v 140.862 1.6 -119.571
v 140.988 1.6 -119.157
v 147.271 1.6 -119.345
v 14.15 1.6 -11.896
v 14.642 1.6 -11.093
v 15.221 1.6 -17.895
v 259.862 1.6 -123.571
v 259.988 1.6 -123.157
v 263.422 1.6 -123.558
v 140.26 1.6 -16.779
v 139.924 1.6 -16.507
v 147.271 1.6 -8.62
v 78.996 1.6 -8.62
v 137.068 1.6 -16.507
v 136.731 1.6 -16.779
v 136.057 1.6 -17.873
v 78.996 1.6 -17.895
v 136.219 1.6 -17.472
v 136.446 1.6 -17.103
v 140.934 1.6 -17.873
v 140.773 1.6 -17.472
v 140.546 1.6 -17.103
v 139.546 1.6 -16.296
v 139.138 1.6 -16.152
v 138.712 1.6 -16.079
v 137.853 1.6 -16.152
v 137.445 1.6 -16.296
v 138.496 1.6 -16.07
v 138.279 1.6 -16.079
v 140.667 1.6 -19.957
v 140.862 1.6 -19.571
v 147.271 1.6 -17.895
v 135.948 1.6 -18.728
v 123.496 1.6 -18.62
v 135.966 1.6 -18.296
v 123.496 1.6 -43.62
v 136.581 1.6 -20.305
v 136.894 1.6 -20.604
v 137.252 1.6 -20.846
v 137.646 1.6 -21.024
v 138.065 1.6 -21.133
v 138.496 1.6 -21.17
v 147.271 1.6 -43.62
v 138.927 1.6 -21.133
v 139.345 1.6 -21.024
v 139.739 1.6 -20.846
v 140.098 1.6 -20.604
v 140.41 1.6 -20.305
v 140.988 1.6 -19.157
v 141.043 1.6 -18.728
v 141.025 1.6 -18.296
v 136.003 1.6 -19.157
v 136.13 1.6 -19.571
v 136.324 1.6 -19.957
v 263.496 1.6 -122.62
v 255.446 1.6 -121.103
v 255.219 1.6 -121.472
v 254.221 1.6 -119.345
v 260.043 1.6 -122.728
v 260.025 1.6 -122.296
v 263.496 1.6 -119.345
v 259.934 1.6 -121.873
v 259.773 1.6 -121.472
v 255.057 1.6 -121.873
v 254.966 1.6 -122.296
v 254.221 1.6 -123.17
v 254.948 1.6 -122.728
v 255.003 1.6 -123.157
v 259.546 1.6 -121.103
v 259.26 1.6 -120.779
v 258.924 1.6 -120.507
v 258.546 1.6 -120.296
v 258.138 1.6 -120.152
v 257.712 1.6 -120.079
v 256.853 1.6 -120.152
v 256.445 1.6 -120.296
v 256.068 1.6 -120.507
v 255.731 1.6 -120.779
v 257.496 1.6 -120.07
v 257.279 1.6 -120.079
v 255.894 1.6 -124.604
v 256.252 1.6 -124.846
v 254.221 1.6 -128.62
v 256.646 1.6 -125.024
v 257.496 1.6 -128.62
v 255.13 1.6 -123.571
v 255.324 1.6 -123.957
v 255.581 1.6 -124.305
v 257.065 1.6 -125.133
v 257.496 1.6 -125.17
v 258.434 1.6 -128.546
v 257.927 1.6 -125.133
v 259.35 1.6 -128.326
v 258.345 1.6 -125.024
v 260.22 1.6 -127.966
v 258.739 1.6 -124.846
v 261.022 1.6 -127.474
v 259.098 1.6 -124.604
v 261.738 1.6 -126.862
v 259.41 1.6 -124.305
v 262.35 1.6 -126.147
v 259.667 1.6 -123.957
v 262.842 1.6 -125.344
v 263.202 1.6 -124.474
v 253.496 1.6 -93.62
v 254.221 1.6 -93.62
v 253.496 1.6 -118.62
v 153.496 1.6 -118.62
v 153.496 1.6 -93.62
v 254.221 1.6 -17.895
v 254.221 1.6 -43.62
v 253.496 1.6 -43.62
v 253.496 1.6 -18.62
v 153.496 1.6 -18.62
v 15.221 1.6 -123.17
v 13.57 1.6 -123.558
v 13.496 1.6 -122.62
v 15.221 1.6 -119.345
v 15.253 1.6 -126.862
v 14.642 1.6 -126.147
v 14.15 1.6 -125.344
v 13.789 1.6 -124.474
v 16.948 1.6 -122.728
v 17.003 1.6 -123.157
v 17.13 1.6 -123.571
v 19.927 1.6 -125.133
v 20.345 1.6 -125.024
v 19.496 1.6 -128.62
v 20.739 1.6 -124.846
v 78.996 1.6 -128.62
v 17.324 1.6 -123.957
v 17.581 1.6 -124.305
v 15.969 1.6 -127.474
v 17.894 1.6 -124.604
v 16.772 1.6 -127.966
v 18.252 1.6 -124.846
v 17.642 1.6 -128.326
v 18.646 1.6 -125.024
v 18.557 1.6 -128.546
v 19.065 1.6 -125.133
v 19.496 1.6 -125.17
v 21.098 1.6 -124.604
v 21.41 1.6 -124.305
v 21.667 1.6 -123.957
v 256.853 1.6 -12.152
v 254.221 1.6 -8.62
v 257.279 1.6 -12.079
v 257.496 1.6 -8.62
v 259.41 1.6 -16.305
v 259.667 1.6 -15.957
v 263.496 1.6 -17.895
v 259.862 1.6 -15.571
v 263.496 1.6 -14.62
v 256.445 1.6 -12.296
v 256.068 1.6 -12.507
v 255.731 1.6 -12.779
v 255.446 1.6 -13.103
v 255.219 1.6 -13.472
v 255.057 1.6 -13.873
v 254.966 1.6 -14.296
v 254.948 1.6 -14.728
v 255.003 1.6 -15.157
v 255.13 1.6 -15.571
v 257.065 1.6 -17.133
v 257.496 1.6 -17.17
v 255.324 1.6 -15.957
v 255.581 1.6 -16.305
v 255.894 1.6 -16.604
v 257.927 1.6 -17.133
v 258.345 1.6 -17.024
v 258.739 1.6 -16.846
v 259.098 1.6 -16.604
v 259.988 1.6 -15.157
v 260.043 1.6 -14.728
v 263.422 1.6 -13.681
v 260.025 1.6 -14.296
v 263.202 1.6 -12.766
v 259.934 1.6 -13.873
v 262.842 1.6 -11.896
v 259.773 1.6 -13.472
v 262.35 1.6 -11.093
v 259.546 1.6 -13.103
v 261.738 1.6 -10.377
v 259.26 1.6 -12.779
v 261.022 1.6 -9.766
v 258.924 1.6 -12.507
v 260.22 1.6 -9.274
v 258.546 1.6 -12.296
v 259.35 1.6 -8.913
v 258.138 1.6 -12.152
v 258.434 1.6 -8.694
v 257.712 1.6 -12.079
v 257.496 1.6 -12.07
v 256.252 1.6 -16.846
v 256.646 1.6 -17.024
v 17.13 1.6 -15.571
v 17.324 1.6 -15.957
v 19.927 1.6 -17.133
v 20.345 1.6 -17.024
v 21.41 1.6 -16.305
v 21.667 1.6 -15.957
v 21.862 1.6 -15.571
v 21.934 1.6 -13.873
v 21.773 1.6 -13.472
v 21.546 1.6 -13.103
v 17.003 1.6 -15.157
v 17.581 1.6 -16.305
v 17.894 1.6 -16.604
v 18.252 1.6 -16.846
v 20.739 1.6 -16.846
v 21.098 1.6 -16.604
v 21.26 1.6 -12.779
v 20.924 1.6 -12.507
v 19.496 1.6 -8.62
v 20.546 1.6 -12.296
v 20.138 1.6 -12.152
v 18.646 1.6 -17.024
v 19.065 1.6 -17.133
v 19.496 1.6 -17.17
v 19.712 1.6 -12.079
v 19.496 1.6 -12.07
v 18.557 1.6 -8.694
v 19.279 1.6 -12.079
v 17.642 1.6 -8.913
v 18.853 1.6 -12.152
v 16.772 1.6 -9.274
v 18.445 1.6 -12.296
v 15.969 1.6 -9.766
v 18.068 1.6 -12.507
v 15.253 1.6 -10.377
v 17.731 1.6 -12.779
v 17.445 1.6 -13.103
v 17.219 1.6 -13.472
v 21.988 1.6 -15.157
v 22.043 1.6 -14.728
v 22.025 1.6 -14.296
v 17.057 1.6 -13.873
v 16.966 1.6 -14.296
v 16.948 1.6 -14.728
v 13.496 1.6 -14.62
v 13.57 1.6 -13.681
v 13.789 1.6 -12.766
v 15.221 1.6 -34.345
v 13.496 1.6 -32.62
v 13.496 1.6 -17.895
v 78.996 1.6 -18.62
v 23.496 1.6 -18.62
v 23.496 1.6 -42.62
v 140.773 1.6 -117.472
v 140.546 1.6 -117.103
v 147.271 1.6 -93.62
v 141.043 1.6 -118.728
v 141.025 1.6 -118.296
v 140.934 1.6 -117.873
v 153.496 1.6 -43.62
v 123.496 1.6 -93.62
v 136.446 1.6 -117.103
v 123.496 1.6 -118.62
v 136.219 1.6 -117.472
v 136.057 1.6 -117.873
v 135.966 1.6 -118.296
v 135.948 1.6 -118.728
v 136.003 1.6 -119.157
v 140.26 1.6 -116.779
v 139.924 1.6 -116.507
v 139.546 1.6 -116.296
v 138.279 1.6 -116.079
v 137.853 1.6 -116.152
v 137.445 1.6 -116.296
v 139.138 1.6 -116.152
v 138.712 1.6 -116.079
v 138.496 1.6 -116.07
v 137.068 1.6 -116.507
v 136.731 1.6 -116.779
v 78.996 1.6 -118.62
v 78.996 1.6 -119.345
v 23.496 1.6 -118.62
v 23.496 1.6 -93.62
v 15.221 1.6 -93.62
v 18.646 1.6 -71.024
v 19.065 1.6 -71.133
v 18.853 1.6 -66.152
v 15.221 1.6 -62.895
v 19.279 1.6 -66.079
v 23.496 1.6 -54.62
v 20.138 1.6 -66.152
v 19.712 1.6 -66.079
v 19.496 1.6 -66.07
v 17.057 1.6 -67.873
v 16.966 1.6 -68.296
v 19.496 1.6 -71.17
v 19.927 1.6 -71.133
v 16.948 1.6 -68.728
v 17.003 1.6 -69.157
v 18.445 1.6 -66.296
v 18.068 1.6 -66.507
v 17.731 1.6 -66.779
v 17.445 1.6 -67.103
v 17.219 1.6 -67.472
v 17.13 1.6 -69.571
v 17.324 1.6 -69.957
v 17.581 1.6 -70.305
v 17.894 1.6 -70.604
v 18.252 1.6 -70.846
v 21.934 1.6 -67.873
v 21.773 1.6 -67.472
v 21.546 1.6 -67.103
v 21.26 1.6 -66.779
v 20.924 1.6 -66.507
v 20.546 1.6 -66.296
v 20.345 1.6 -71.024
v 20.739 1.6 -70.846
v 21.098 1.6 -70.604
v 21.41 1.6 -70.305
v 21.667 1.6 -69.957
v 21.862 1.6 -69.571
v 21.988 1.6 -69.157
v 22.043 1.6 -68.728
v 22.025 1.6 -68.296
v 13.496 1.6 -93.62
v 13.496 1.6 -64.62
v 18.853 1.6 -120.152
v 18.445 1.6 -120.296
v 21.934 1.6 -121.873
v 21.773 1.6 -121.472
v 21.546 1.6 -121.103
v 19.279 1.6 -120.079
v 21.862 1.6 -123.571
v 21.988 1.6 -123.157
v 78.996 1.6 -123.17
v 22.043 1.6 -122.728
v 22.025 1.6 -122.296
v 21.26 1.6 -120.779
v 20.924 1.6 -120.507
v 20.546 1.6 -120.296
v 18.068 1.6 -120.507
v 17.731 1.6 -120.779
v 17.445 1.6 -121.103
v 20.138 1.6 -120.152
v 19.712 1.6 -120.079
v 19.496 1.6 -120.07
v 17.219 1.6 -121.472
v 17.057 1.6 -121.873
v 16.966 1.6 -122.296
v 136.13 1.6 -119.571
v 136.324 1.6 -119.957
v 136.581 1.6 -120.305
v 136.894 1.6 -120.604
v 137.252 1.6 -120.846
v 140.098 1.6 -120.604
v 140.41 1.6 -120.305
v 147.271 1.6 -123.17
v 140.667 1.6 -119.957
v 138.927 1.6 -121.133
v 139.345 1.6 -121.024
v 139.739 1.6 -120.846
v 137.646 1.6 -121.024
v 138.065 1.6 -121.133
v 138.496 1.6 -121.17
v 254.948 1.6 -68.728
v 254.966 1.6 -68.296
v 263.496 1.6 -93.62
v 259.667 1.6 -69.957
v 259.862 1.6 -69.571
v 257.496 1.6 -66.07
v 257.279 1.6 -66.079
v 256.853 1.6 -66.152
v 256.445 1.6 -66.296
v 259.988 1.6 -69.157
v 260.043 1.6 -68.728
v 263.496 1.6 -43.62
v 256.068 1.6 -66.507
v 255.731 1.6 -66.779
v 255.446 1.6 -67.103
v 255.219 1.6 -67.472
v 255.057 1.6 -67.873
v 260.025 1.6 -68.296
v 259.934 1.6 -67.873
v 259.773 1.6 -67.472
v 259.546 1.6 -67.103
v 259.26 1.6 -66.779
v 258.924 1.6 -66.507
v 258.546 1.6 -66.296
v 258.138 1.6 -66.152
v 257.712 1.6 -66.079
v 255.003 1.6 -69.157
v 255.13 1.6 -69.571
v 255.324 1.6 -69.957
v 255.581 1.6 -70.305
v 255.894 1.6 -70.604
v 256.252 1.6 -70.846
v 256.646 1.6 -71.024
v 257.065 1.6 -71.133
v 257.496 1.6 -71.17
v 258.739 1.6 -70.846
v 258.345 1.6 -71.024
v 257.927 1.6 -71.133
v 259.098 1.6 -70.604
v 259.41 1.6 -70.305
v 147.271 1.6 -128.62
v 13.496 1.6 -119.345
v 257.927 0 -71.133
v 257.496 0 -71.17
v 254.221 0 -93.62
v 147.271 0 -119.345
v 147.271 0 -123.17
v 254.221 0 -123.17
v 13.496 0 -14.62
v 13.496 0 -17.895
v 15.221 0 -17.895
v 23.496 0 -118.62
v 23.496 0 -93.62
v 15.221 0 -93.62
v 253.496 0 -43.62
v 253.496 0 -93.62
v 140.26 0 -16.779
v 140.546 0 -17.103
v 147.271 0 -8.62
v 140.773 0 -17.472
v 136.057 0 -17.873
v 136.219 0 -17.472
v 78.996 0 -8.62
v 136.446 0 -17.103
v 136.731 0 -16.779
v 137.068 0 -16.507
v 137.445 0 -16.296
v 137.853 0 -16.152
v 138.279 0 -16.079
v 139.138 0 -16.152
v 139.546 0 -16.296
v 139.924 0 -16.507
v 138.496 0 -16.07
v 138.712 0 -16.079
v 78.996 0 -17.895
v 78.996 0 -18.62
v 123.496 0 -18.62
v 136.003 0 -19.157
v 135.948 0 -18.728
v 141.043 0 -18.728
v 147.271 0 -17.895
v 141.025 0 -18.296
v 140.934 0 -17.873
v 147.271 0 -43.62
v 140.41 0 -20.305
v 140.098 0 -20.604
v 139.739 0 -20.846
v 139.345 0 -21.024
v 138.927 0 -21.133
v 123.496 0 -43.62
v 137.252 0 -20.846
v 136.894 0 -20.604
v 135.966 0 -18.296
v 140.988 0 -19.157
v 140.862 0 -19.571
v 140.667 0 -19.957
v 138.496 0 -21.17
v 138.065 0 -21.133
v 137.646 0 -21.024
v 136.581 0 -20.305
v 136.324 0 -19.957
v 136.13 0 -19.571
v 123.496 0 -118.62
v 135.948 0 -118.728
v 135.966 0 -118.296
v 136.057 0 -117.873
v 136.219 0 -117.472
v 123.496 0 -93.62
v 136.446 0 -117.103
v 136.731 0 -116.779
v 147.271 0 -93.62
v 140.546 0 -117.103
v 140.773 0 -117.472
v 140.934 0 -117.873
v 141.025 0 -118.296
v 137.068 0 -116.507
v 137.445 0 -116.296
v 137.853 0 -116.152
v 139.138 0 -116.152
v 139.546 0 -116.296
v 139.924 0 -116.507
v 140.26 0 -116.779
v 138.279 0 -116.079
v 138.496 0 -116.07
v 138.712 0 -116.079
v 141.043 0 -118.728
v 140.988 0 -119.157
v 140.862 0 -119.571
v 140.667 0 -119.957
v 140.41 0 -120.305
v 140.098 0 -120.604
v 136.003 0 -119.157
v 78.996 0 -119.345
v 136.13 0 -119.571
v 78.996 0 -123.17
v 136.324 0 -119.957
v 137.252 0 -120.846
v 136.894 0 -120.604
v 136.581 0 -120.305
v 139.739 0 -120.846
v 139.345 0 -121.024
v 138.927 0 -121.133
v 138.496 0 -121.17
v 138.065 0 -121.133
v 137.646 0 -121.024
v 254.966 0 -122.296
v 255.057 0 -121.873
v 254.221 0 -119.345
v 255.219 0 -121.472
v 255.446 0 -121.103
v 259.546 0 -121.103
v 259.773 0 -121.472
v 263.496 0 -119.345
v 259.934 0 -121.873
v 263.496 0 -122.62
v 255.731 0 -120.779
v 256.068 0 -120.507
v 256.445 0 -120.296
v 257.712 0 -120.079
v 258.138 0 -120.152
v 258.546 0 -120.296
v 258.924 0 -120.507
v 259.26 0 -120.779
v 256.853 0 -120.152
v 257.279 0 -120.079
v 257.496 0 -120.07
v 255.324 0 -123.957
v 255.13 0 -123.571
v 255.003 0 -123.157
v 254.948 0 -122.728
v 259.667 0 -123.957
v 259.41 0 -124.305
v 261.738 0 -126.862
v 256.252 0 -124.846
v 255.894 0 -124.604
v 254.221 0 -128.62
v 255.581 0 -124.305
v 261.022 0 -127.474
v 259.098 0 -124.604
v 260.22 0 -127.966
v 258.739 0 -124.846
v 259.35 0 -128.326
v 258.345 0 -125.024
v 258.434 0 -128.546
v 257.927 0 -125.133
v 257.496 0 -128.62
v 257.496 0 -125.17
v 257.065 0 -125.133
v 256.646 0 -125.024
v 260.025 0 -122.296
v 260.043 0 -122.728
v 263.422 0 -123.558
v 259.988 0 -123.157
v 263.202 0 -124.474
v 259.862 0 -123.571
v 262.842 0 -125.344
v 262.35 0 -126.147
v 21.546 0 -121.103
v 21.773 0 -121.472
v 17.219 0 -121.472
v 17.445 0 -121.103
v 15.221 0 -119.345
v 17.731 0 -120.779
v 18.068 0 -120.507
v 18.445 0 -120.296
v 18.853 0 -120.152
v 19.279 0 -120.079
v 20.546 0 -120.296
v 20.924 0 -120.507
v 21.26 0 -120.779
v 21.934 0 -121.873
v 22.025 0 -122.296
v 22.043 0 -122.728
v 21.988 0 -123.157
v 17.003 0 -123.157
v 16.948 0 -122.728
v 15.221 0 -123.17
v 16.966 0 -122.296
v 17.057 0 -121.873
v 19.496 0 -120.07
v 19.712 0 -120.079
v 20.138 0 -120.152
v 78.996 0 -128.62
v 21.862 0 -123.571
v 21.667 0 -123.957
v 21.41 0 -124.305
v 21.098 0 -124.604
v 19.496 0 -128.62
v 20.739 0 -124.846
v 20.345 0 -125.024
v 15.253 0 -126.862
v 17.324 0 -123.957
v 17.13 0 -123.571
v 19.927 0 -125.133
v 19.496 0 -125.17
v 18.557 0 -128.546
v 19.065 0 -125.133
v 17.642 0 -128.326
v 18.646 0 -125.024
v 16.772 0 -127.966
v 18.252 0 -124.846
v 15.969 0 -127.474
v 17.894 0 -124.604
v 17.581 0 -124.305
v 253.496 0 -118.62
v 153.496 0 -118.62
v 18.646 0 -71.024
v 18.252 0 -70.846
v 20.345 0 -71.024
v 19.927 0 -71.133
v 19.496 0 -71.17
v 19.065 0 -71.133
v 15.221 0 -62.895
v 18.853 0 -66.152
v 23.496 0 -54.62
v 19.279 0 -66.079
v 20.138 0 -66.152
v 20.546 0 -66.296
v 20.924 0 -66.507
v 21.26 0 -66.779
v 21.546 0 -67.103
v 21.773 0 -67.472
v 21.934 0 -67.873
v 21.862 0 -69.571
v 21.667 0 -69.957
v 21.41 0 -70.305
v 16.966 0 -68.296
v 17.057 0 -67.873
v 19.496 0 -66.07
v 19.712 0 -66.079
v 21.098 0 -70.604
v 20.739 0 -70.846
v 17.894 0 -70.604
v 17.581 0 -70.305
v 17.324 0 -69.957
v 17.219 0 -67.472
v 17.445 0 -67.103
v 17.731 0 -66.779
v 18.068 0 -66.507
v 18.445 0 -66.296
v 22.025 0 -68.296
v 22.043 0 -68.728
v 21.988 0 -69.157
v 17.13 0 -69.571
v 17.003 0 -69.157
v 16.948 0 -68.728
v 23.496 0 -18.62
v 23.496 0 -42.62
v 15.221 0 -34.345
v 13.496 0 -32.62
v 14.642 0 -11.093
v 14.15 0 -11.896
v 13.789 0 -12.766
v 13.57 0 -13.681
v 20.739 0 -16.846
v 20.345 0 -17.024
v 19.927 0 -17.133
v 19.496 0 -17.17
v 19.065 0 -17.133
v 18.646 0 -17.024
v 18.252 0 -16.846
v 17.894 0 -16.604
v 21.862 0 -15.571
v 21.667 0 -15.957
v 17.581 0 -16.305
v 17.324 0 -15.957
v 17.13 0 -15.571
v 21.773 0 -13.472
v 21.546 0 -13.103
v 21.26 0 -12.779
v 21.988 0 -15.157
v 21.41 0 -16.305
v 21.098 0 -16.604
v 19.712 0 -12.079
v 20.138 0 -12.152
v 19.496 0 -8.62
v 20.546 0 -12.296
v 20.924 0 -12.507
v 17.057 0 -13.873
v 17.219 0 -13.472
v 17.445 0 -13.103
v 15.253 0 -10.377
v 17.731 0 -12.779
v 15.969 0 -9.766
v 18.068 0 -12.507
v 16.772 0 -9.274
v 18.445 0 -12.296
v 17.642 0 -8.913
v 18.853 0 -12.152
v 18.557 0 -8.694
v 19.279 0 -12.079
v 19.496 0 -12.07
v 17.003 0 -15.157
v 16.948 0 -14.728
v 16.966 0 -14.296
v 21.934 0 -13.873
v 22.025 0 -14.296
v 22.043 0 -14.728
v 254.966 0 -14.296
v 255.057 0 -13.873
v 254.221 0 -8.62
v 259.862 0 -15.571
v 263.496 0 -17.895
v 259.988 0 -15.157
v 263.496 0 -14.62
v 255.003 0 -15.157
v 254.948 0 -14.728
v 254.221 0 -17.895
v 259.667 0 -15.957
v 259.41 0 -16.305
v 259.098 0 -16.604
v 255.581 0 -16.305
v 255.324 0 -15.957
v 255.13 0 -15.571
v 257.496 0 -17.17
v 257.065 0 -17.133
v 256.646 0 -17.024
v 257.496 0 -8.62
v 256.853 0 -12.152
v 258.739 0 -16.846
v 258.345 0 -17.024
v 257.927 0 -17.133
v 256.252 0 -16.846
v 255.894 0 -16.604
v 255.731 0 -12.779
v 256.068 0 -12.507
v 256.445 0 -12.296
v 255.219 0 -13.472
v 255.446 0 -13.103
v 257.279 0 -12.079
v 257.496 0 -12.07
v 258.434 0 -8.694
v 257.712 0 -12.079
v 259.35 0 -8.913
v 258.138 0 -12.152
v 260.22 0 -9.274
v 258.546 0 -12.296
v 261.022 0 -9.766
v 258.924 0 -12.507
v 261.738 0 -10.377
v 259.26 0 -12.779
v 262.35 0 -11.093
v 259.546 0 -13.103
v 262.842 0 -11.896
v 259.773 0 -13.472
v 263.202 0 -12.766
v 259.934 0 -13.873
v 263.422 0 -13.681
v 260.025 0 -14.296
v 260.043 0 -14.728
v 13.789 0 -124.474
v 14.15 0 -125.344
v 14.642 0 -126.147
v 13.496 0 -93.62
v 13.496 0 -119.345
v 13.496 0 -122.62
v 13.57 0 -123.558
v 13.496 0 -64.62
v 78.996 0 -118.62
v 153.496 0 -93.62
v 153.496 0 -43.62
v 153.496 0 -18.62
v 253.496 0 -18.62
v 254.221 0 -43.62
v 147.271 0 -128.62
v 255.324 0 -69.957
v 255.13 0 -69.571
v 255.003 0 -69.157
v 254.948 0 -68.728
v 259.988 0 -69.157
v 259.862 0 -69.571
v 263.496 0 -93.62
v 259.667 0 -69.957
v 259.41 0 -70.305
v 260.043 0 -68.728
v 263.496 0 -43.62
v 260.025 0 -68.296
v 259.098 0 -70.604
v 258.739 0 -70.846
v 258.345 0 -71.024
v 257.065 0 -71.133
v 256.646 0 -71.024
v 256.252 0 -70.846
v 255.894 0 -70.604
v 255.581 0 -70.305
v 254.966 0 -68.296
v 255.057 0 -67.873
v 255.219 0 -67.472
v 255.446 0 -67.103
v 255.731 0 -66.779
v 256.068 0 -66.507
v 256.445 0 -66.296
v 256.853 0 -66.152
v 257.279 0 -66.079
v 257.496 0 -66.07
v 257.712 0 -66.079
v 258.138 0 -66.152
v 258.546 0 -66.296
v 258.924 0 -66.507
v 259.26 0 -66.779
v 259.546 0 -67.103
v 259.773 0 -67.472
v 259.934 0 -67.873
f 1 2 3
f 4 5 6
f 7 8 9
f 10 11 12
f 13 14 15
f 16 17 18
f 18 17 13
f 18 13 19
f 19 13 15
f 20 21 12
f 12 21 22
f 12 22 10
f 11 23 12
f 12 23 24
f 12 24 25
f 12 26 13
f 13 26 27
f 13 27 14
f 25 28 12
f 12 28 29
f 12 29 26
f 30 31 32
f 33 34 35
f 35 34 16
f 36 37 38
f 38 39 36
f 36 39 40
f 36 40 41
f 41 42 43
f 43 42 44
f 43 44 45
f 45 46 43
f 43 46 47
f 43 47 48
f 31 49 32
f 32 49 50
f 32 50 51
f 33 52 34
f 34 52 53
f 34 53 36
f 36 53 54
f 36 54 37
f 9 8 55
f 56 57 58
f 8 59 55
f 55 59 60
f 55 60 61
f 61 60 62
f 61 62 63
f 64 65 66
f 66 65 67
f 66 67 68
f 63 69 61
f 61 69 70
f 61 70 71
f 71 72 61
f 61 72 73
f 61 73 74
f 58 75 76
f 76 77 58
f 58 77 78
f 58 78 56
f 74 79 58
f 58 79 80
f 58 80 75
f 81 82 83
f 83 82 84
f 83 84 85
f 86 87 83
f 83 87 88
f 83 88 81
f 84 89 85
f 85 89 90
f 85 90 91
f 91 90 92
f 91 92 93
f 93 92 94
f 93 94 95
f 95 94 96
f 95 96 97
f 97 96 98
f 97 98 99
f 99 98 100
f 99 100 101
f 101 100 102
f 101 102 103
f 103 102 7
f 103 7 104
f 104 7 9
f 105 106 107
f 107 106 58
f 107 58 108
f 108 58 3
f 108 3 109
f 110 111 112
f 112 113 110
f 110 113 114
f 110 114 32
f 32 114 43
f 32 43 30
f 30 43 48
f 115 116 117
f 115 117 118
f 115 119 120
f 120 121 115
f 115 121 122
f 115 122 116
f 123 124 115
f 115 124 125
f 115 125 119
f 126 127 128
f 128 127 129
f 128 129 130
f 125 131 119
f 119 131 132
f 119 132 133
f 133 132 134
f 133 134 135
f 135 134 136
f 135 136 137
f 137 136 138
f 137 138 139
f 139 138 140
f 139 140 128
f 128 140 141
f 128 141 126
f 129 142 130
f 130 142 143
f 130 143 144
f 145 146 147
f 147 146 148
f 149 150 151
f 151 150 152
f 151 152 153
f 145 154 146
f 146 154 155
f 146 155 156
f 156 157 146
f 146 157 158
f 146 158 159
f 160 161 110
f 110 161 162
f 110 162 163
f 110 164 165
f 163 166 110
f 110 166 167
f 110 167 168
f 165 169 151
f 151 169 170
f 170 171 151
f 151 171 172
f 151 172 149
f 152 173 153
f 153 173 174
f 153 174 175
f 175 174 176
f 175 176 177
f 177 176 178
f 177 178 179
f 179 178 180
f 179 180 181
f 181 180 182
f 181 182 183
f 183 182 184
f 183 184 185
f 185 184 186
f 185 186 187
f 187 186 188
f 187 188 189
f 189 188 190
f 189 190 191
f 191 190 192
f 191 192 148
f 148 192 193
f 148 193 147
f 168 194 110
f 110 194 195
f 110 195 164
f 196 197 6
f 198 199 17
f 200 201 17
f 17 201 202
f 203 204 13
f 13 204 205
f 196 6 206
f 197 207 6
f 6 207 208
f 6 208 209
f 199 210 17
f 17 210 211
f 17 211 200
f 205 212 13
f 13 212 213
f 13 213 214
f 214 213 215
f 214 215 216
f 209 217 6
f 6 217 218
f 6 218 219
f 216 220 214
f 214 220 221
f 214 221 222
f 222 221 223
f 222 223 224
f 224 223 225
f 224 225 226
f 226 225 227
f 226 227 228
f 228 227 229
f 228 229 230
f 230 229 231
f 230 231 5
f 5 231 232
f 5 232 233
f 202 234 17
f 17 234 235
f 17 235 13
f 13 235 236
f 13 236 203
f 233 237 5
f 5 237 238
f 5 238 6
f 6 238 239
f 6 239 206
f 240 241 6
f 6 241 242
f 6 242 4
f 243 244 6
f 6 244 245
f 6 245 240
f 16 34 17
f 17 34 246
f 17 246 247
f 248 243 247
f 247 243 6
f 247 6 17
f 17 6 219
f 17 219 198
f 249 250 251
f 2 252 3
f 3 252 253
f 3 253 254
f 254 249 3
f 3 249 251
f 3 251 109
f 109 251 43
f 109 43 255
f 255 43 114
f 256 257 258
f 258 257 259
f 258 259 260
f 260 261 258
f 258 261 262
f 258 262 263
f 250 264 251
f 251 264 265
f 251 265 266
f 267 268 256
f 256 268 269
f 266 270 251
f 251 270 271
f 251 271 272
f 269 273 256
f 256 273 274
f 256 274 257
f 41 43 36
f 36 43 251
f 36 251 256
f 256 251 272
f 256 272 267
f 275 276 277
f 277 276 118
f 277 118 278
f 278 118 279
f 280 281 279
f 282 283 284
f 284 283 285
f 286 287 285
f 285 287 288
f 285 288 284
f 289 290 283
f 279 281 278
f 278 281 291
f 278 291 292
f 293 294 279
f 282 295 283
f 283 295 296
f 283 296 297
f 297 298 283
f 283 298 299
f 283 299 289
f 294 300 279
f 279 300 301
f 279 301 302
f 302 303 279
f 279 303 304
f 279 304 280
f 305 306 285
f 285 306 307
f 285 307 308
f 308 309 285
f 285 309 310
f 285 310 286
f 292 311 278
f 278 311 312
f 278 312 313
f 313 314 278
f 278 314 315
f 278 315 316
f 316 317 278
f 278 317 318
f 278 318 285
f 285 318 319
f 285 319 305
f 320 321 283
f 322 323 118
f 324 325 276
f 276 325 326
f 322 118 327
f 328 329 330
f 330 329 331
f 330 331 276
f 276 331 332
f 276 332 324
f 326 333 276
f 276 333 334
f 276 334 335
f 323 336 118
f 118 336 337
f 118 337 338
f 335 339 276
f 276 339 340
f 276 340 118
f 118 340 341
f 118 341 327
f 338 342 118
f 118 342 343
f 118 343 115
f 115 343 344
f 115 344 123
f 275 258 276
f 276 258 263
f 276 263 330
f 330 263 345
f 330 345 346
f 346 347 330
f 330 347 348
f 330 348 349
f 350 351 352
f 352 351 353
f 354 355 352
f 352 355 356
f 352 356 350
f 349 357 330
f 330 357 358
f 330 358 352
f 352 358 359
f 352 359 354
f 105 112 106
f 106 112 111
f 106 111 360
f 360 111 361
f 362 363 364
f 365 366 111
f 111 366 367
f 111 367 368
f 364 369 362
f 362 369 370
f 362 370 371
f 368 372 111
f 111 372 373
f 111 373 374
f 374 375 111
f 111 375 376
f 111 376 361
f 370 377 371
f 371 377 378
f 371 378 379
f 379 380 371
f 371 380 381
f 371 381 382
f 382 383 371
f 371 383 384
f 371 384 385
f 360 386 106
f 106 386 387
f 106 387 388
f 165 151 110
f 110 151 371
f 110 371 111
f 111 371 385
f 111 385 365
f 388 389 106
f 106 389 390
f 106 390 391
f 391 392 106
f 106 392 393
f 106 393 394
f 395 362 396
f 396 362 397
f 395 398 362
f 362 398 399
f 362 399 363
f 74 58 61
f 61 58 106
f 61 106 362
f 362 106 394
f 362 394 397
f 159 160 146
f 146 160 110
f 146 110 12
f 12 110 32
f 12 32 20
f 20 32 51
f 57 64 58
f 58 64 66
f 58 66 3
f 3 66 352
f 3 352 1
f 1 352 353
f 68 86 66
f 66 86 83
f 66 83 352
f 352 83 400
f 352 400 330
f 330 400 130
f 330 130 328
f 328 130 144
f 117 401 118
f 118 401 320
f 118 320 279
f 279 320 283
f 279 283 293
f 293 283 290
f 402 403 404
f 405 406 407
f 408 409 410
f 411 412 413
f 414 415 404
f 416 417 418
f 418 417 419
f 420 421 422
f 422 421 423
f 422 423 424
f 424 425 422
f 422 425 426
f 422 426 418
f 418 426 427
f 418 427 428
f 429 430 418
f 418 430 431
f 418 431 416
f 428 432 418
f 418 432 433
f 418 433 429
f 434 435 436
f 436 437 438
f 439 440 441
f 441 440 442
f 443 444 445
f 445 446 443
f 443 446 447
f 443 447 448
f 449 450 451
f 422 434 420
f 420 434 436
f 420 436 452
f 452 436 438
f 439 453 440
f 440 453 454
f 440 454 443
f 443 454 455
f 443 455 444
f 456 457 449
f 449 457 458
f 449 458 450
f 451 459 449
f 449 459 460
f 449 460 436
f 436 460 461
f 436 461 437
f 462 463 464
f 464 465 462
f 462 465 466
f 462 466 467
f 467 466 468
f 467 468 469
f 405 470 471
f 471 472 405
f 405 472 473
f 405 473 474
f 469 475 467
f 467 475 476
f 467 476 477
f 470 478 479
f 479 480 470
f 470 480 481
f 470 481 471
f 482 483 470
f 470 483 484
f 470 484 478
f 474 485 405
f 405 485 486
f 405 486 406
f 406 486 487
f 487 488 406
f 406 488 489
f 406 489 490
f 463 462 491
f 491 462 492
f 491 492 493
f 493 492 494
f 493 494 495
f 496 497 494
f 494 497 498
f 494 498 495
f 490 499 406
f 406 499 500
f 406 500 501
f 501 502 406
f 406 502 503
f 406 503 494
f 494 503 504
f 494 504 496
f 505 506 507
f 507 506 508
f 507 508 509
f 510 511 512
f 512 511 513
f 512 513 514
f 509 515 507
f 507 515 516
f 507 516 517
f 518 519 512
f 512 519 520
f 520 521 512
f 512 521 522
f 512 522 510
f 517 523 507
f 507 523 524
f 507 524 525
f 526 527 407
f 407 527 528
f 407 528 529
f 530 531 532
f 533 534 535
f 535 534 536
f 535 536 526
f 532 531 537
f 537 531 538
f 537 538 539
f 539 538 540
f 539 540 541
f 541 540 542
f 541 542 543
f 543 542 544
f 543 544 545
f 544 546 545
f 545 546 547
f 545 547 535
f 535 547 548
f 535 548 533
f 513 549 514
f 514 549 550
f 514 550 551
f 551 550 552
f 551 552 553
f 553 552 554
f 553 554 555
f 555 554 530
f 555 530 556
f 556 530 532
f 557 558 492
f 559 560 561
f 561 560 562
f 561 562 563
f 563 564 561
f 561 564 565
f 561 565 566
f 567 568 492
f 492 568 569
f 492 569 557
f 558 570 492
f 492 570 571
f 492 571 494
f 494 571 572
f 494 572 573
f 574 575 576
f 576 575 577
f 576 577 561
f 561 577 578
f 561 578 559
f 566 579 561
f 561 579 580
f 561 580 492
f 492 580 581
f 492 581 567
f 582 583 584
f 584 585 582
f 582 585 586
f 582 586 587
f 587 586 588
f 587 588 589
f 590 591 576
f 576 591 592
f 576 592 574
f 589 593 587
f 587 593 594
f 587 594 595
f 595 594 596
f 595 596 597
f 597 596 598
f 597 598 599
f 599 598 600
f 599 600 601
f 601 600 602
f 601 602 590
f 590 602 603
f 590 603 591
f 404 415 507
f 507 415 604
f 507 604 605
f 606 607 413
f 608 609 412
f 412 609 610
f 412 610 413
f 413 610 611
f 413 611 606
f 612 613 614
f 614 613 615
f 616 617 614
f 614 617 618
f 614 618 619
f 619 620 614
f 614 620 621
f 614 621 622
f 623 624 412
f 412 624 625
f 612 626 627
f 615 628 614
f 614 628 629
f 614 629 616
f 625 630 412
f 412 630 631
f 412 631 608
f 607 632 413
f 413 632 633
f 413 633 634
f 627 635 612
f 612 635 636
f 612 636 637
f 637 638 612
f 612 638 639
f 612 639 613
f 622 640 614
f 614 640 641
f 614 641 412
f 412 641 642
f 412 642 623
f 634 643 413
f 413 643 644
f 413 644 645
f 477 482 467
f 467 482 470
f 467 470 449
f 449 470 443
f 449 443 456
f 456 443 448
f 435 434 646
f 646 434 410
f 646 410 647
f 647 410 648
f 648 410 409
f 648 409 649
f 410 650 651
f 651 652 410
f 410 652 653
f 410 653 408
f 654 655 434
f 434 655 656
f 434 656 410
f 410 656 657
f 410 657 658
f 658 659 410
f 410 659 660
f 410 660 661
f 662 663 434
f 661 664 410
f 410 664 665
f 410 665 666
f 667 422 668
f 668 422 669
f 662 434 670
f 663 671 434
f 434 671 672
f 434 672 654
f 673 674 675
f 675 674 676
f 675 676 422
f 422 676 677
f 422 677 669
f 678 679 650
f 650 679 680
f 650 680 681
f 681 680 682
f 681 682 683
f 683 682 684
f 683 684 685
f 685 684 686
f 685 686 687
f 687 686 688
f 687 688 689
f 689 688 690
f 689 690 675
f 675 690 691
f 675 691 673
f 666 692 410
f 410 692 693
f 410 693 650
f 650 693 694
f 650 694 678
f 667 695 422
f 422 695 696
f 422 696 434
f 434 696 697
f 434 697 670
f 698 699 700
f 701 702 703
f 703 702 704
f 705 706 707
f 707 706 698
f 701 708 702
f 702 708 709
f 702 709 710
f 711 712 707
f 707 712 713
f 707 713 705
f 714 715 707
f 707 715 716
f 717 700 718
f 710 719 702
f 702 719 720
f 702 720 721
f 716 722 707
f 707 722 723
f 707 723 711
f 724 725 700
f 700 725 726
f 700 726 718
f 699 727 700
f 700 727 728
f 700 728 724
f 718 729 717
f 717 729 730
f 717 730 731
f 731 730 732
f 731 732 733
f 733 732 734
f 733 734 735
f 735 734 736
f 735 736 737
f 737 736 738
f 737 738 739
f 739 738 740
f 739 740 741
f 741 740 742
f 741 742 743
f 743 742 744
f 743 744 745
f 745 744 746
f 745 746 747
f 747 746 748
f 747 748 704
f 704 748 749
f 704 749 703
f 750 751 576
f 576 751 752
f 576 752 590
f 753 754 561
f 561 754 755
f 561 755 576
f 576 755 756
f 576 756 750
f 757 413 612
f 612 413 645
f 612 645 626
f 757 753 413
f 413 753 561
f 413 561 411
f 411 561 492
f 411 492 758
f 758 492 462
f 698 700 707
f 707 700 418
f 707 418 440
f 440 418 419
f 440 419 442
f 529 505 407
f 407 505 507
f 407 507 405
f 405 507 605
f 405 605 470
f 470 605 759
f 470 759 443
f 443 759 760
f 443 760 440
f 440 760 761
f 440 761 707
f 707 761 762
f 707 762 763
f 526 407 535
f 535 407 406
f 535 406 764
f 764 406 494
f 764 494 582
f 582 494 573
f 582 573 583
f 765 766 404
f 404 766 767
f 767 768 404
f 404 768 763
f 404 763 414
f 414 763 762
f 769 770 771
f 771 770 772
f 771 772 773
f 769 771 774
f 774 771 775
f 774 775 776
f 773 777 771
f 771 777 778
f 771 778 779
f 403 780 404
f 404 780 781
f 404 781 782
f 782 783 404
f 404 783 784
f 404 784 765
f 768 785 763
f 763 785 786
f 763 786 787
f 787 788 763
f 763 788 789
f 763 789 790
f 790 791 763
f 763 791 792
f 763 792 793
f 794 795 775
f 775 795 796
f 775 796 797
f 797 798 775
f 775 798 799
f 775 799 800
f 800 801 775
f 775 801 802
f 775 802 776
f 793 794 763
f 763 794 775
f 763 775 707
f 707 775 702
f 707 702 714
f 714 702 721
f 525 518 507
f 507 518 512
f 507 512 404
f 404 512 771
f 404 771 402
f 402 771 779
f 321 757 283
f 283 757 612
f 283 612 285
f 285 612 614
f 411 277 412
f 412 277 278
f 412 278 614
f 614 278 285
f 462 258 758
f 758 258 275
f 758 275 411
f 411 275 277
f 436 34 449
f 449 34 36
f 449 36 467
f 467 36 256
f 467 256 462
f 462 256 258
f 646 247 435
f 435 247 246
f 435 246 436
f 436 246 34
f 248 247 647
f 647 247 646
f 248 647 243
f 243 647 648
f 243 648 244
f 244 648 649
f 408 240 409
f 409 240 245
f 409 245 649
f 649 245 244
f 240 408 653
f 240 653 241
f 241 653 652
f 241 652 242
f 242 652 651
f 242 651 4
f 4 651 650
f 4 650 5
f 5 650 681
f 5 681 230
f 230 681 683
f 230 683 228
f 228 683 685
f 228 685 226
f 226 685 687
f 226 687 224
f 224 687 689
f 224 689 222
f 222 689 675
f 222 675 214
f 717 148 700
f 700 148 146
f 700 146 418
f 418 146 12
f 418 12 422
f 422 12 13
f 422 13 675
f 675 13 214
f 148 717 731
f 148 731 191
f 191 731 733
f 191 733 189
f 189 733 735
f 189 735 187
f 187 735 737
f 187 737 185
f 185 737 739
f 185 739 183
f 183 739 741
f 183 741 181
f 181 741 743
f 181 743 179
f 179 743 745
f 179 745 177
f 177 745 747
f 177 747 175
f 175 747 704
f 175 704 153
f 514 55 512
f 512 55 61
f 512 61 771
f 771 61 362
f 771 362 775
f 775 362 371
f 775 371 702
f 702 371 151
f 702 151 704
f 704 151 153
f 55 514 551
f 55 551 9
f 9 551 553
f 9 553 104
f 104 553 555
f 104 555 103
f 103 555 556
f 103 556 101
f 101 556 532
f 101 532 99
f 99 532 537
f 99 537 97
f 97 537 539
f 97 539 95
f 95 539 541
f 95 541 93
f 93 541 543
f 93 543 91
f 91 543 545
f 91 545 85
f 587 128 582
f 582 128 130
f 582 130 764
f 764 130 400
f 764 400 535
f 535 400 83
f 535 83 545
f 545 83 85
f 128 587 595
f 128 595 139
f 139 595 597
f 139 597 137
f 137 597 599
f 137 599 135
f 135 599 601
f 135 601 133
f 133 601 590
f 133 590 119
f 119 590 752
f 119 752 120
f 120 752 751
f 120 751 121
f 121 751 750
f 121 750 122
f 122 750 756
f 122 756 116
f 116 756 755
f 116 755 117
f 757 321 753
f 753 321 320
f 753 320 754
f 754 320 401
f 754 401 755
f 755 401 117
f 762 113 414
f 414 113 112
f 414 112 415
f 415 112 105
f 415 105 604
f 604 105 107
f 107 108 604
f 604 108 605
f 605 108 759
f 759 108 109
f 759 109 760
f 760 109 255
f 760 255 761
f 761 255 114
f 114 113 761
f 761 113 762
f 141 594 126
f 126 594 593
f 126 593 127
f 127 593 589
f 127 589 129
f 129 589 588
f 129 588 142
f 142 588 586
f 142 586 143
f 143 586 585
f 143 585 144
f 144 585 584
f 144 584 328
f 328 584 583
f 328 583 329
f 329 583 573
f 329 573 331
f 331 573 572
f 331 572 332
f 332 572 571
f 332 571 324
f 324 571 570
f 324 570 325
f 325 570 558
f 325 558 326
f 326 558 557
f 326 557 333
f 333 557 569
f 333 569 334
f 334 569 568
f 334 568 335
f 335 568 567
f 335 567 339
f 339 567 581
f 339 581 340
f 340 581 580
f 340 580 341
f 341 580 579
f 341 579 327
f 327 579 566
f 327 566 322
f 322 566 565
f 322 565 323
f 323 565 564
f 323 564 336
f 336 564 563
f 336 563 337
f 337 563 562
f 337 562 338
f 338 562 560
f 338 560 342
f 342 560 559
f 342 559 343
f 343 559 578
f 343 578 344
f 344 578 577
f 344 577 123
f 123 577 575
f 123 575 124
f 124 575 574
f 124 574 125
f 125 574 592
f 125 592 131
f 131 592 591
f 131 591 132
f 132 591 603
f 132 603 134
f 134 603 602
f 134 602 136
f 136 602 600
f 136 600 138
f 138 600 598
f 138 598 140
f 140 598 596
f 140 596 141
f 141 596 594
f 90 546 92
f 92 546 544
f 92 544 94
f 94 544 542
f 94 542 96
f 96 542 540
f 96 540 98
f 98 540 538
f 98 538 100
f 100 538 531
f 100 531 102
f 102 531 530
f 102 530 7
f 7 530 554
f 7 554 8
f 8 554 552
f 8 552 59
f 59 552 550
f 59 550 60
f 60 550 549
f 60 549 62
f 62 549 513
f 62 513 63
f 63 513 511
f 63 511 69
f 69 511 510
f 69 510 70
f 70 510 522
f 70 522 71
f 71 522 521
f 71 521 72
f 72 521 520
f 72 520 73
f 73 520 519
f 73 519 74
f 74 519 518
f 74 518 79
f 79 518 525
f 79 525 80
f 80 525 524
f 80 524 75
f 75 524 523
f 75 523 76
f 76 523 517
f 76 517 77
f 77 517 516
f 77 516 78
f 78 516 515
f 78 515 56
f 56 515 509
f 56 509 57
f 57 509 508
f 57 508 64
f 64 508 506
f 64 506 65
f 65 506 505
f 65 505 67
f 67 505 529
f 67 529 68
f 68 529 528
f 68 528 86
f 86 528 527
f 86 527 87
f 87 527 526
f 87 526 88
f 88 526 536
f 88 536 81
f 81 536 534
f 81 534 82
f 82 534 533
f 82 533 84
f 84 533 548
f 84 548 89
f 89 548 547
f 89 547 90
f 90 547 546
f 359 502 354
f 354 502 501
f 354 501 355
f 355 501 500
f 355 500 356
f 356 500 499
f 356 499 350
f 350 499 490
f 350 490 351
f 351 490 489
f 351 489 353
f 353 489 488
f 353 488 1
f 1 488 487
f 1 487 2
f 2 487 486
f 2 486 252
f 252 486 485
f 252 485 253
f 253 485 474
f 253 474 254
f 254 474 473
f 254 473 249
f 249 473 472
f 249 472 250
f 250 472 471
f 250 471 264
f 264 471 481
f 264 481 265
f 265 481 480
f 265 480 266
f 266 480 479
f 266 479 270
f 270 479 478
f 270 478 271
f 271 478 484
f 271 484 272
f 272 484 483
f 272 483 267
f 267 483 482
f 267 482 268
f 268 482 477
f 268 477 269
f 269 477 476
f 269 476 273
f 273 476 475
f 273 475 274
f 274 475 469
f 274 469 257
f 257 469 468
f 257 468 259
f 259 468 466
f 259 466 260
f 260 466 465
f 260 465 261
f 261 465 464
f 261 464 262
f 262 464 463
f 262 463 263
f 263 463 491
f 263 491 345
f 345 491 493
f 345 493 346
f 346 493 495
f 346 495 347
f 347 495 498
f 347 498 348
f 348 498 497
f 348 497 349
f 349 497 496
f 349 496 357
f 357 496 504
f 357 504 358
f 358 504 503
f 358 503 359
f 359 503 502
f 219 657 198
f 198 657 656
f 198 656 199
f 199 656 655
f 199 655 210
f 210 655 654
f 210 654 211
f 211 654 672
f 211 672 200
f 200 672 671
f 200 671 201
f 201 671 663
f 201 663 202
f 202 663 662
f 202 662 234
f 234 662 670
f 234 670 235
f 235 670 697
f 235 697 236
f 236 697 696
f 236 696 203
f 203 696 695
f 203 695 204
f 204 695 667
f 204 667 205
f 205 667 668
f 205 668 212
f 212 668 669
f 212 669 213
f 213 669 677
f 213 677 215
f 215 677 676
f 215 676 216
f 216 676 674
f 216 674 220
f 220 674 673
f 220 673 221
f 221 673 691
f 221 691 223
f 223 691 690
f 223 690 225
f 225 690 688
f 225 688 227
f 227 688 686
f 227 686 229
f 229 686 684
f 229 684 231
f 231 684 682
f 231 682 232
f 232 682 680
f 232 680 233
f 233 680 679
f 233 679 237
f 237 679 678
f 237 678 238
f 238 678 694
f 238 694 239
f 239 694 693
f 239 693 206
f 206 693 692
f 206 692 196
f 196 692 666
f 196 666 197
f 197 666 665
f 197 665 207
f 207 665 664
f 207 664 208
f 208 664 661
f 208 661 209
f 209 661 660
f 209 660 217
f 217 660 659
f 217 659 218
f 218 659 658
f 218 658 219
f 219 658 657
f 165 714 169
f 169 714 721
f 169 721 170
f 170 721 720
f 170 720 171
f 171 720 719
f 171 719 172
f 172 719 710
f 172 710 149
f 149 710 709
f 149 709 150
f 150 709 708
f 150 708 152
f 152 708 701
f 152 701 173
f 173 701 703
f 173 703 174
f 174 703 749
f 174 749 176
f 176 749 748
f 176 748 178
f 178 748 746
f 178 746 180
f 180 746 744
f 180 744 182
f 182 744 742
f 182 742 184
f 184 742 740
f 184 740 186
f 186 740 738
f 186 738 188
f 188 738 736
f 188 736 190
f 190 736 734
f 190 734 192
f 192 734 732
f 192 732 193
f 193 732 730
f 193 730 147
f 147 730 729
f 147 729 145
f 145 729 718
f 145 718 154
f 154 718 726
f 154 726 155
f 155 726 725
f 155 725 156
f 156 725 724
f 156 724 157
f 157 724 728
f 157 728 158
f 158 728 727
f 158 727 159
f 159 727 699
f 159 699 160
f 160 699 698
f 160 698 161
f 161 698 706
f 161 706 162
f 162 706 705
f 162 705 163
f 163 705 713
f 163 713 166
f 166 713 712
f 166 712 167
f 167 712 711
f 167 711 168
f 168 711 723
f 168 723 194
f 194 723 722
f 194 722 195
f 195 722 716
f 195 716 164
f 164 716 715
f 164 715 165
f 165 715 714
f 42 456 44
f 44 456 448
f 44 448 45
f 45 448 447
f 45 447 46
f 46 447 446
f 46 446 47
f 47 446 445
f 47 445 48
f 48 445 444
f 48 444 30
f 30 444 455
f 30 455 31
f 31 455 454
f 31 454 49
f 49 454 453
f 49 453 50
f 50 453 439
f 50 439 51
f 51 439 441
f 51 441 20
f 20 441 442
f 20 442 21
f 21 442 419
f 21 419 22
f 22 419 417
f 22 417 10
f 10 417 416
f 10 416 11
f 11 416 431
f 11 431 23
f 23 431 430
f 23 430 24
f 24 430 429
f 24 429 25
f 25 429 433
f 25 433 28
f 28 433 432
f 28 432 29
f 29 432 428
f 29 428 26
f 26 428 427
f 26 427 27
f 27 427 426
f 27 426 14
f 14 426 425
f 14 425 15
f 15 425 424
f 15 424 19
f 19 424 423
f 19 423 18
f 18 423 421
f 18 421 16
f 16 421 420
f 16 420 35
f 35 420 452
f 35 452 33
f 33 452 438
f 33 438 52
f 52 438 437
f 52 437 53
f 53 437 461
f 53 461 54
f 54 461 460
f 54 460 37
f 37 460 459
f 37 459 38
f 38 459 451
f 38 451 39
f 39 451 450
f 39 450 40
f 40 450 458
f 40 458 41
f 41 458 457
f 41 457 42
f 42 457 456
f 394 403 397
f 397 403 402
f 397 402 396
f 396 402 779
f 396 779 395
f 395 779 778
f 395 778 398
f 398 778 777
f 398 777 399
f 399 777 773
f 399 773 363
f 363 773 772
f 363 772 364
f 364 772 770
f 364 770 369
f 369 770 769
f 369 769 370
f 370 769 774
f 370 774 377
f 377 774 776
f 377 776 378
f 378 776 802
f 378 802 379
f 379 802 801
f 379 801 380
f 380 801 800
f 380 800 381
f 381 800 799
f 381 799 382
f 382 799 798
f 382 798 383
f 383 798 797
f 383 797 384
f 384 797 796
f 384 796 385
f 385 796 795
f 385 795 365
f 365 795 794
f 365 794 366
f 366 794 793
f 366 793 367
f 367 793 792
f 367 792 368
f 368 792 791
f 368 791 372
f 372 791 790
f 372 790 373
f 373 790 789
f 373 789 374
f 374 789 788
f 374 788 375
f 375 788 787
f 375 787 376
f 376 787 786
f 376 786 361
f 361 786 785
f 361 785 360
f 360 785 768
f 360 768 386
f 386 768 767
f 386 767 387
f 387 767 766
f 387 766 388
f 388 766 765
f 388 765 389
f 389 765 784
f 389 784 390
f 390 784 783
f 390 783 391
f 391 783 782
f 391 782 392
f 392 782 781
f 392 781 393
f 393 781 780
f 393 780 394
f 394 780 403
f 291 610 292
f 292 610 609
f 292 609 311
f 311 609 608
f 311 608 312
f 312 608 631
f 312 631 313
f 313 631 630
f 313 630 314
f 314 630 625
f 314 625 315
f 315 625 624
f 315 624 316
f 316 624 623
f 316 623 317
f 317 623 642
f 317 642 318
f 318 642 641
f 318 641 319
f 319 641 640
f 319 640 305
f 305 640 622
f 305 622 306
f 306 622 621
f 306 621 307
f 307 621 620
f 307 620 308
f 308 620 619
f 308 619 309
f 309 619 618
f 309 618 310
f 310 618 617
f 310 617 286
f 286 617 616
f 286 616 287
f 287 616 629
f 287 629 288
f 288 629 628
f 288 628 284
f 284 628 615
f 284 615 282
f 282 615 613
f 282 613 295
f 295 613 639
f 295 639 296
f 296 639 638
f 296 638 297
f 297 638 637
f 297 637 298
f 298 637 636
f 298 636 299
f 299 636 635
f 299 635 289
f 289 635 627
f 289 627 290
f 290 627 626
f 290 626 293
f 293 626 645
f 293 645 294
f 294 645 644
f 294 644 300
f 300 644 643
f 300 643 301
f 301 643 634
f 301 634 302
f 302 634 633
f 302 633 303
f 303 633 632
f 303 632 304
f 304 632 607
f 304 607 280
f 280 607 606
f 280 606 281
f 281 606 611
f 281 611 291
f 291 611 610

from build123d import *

# Parameters (mm, degrees)
SKETCH_1_R      = 2.55
SKETCH_1_W      = 100
SKETCH_1_H      = 100
EXTRUDE_1_DEPTH = 1.6


with BuildPart() as part:
    # 草图1 → 凸台-拉伸1 (new body)
    with BuildSketch(Plane(origin=(0, 0, 0), x_dir=(1, 0, 0), z_dir=(0, 1, 0))):
        with BuildLine():
            Line((13.495694321, 64.619803607), (13.495694321, 122.619803607))
            ThreePointArc((13.495694321, 122.619803607), (15.253053633, 126.862444294), (19.495694321, 128.619803607))
            Line((19.495694321, 128.619803607), (257.495694321, 128.619803607))
            ThreePointArc((257.495694321, 128.619803607), (261.738335008, 126.862444294), (263.495694321, 122.619803607))
            Line((263.495694321, 122.619803607), (263.495694321, 14.619803607))
            ThreePointArc((263.495694321, 14.619803607), (261.738335008, 10.37716292), (257.495694321, 8.619803607))
            Line((257.495694321, 8.619803607), (19.495694321, 8.619803607))
            ThreePointArc((19.495694321, 8.619803607), (15.253053633, 10.37716292), (13.495694321, 14.619803607))
            Line((13.495694321, 14.619803607), (13.495694321, 32.619803607))
            Line((13.495694321, 32.619803607), (23.495694321, 42.619803607))
            Line((23.495694321, 42.619803607), (23.495694321, 18.619803607))
            Line((23.495694321, 18.619803607), (123.495694321, 18.619803607))
            Line((123.495694321, 18.619803607), (123.495694321, 118.619803607))
            Line((123.495694321, 118.619803607), (23.495694321, 118.619803607))
            Line((23.495694321, 118.619803607), (23.495694321, 54.619803607))
            Line((23.495694321, 54.619803607), (13.495694321, 64.619803607))
        make_face()
        with Locations(Location((19.495694321, 122.619803607, 0), (0, 0, 270))):
            Circle(SKETCH_1_R, mode=Mode.SUBTRACT)
        with Locations(Location((257.495694321, 122.619803607, 0), (0, 0, 270))):
            Circle(SKETCH_1_R, mode=Mode.SUBTRACT)
        with Locations(Location((138.495694321, 118.619803607, 0), (0, 0, 270))):
            Circle(SKETCH_1_R, mode=Mode.SUBTRACT)
        with Locations(Location((19.495694321, 14.619803607, 0), (0, 0, 270))):
            Circle(SKETCH_1_R, mode=Mode.SUBTRACT)
        with Locations(Location((257.495694321, 14.619803607, 0), (0, 0, 270))):
            Circle(SKETCH_1_R, mode=Mode.SUBTRACT)
        with Locations(Location((138.495694321, 18.619803607, 0), (0, 0, 270))):
            Circle(SKETCH_1_R, mode=Mode.SUBTRACT)
        with Locations(Location((257.495694321, 68.619803607, 0), (0, 0, 270))):
            Circle(SKETCH_1_R, mode=Mode.SUBTRACT)
        with Locations(Location((19.495694321, 68.619803607, 0), (0, 0, 270))):
            Circle(SKETCH_1_R, mode=Mode.SUBTRACT)
        with Locations((203.495694321, 68.619803607)):
            Rectangle(SKETCH_1_W, SKETCH_1_H, mode=Mode.SUBTRACT)
    extrude(amount=EXTRUDE_1_DEPTH)


solid = part.part
